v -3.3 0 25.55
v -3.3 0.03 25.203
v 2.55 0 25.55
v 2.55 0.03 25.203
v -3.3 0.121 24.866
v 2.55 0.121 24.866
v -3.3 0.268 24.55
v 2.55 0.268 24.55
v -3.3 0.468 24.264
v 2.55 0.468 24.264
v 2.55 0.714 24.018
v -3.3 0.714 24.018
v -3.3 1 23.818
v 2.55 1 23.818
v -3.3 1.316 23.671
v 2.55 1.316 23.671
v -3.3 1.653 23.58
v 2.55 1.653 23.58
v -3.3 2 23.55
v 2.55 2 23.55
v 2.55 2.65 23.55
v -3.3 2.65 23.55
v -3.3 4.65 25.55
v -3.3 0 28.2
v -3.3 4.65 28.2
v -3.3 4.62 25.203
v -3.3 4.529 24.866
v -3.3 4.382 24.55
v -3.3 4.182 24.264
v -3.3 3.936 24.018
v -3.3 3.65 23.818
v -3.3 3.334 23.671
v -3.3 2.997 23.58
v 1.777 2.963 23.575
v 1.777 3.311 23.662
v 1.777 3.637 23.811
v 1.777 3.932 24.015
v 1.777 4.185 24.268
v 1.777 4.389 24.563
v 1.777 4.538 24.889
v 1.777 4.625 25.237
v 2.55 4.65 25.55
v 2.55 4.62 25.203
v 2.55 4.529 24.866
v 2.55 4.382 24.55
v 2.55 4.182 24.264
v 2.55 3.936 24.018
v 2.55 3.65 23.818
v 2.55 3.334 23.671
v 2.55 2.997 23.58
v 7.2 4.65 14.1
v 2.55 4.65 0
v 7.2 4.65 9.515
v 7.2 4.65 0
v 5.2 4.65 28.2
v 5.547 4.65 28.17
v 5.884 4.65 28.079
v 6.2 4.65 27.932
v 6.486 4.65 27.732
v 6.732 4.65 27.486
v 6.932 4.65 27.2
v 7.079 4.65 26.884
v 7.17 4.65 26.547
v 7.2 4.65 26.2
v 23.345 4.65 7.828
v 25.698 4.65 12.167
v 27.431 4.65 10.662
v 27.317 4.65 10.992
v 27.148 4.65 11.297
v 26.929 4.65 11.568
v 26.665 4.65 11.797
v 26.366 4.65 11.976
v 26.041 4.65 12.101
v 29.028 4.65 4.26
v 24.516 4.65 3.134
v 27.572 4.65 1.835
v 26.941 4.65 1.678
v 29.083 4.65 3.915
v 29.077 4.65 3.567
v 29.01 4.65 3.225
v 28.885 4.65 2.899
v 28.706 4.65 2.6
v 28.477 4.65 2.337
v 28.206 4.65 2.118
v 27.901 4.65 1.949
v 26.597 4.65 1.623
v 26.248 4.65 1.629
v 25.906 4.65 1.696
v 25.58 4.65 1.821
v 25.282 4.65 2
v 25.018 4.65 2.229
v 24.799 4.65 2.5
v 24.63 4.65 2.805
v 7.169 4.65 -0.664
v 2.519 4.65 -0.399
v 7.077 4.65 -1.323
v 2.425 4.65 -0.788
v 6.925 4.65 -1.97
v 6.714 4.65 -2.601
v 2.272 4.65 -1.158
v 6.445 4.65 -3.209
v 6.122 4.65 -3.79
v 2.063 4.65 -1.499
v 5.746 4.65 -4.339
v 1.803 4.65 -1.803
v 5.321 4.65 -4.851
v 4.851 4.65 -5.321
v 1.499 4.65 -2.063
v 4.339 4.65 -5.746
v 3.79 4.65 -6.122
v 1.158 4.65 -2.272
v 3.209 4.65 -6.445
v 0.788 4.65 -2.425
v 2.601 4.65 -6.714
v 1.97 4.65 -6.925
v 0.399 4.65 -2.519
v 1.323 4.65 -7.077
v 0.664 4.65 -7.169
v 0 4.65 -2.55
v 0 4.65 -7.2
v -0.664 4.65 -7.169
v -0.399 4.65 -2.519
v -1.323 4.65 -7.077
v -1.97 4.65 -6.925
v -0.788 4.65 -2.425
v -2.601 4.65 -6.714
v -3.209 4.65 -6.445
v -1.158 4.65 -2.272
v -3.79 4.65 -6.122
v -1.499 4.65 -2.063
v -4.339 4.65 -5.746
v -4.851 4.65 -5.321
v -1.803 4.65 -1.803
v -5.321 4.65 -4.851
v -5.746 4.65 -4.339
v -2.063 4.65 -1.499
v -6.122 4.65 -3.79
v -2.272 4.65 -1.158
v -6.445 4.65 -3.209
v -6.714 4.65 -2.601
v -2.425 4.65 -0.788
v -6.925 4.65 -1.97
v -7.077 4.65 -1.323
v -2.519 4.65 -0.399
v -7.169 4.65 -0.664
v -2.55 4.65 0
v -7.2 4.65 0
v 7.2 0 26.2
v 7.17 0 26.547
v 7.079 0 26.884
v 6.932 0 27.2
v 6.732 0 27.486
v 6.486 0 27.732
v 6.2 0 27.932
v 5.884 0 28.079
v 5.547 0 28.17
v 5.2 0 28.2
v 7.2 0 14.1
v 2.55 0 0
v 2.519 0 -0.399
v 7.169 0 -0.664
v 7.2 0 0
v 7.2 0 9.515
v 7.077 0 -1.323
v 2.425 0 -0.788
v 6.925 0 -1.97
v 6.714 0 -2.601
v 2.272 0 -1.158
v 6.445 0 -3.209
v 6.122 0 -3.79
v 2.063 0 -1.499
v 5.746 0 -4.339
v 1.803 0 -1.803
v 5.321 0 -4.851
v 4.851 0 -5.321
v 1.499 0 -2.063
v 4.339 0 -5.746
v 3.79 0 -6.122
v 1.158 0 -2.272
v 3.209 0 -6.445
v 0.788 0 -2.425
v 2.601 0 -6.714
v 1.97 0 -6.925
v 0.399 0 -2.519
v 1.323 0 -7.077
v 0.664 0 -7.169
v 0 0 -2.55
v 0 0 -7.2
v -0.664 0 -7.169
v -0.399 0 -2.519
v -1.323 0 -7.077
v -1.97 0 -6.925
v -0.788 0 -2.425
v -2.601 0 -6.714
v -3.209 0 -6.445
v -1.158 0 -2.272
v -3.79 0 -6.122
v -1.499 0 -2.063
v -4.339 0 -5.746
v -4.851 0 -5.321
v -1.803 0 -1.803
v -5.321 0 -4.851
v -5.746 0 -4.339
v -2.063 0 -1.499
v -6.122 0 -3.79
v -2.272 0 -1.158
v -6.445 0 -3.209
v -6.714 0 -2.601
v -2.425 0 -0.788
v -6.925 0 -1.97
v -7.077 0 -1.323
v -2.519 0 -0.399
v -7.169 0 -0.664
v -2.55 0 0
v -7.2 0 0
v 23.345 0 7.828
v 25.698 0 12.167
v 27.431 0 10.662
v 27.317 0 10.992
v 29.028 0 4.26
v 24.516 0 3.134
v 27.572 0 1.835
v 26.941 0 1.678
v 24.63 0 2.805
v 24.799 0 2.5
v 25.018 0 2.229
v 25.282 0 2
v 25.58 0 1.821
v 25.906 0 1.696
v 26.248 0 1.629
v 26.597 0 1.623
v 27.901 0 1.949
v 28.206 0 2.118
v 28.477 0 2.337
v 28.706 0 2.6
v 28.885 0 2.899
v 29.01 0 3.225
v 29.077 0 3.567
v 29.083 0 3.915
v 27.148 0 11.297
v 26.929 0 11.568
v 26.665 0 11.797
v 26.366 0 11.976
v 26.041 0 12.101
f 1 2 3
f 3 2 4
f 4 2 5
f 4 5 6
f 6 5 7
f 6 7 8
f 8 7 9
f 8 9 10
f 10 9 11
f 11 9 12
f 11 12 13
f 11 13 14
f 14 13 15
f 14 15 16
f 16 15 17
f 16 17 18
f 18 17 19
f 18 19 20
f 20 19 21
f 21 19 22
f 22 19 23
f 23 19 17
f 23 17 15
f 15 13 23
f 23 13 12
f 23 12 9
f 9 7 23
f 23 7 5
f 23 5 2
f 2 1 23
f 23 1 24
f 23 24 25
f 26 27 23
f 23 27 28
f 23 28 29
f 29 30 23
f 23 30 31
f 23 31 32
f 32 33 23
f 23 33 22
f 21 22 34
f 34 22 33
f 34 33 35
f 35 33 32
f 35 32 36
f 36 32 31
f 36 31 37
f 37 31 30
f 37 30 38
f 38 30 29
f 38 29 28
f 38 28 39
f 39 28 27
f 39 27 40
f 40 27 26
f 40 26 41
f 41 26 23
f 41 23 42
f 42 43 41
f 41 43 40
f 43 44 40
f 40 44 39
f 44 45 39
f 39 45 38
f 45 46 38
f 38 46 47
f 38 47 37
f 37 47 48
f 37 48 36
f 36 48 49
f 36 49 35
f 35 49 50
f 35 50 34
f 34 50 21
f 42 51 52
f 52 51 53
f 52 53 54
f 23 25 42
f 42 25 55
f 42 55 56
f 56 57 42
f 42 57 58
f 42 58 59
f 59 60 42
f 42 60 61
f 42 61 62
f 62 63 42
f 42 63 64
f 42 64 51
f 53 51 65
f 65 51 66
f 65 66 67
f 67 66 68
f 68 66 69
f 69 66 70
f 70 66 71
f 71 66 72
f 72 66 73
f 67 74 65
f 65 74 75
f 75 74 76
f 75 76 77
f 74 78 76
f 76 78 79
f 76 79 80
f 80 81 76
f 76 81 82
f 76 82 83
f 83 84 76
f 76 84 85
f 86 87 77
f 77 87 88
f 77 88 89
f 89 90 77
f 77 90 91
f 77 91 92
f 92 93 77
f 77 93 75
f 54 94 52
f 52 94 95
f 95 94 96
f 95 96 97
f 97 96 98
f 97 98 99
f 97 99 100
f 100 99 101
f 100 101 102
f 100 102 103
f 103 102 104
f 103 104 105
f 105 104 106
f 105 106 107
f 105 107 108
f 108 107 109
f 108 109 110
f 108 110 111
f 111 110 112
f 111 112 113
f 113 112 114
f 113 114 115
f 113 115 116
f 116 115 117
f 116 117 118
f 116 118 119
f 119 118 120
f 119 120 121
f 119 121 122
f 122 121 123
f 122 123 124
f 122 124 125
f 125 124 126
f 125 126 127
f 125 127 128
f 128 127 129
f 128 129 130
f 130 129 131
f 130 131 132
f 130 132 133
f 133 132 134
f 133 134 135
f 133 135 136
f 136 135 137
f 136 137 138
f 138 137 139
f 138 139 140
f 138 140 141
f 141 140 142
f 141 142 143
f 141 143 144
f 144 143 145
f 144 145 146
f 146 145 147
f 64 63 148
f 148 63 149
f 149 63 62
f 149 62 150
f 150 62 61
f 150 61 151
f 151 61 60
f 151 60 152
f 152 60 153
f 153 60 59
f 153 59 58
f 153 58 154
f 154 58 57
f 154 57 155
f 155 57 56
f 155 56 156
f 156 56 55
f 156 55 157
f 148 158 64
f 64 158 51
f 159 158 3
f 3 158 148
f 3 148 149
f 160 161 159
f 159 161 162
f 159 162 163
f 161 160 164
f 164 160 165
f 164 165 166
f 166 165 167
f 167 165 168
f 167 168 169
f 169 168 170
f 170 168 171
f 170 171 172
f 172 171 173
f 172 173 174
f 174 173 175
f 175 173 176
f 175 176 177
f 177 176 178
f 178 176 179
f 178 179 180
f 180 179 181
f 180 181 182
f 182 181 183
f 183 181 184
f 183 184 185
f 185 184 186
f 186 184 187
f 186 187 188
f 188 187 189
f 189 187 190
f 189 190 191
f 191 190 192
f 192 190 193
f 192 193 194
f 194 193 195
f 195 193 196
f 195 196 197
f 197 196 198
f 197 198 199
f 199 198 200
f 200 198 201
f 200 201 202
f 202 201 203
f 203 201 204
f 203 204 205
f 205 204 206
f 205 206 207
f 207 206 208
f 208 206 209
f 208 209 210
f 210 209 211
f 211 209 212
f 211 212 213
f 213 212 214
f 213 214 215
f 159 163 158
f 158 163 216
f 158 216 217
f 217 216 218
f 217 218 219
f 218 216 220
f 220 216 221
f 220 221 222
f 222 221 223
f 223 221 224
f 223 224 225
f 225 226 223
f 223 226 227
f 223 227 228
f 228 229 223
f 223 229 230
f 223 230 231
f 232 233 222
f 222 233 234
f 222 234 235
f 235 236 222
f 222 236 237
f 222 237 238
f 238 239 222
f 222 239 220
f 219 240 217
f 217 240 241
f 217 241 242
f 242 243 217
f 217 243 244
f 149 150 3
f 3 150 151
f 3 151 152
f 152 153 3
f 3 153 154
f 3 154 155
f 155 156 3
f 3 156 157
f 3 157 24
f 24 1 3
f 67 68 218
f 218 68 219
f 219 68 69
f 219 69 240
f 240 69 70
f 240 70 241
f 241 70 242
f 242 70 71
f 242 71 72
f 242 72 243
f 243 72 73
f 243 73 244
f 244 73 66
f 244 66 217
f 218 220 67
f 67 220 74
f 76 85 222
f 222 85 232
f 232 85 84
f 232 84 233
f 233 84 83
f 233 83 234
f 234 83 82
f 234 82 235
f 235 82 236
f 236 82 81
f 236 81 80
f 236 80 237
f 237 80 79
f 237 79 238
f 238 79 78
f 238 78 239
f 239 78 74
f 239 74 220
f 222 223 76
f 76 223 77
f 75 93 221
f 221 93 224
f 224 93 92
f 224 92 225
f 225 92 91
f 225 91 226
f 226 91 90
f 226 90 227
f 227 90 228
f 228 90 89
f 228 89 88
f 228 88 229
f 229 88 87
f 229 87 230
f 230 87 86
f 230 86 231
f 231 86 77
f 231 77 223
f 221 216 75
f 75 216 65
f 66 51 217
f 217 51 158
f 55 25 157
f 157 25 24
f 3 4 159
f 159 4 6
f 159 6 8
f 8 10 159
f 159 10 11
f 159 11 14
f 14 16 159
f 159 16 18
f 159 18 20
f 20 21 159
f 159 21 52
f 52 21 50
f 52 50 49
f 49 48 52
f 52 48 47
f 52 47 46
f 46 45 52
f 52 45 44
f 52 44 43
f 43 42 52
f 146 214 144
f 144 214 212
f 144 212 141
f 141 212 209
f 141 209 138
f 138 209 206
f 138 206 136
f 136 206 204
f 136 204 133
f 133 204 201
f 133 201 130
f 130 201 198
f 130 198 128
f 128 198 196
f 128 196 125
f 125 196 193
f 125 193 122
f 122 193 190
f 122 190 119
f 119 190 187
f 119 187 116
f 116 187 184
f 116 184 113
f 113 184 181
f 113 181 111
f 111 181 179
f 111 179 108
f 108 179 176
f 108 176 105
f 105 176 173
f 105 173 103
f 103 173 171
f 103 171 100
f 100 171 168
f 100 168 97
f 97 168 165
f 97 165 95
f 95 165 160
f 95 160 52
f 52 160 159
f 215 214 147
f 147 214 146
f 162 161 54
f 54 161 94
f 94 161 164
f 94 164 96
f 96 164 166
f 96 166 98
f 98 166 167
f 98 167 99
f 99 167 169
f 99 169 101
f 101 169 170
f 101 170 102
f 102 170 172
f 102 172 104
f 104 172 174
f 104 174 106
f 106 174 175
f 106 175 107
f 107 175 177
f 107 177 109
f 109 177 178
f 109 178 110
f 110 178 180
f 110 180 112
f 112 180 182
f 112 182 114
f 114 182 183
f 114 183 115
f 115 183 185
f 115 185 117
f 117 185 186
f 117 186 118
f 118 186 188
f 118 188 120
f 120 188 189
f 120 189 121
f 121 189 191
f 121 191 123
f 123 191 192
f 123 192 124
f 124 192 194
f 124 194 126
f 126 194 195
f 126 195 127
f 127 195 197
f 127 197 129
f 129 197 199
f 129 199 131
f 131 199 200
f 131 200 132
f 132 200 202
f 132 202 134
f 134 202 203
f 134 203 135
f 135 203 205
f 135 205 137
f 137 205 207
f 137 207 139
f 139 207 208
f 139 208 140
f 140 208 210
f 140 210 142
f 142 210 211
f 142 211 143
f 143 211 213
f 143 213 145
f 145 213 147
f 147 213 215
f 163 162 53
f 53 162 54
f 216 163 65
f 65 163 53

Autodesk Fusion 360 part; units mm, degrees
sketch "Sketch1" plane through (0, 0, 0) normal (0, 1, 0) x (1, 0, 0)
  circle A0 centre (0, 0) radius 7.2
  circle A1 centre (0, 0) radius 2.55
  line L0 (7.2, 0) -> (2.55, 0)
  line L1 (2.55, 0) -> (2.55, -28.2)
  line L2 (2.55, -28.2) -> (7.2, -28.2)
  line L3 (7.2, -28.2) -> (7.2, 0)
  line L4 (7.2, -28.2) -> (-3.3, -28.2)
  line L5 (-3.3, -28.2) -> (-3.3, -23.55)
  line L6 (-3.3, -23.55) -> (7.2, -23.55)
  line L7 (7.2, -23.55) -> (7.2, -28.2)
  line L8 (2.55, 0) -> (-7.2, 0)
  line L9 (7.2, -4.2775) -> (7.2, -1.15)
  line L10 (7.2, -14.1) -> (27.0917, -12.0219)
  line L11 (27.0917, -12.0219) -> (26.6179, -7.4866)
  line L12 (26.6179, -7.4866) -> (6.7262, -9.5647)
  line L13 (6.7262, -9.5647) -> (7.2, -14.1)
  line L14 (27.0917, -12.0219) -> (22.58, -10.8963)
  line L15 (22.58, -10.8963) -> (25.0006, -1.1937)
  line L16 (25.0006, -1.1937) -> (29.5123, -2.3192)
  line L17 (29.5123, -2.3192) -> (27.0917, -12.0219)
  dimension "d1" = 14.4
  dimension "d2" = 5.1
  dimension "d3" = 4.65
  dimension "d4" = 28.2
  dimension "d5" = 10.5
  dimension "d6" = 4.65
  dimension "d16" = 20
  dimension "d17" = 4.56
  dimension "d18" = 4.65
  dimension "d19" = 10
extrude "Extrude1" add sketch "Sketch1" along normal blind 4.65 contours A0 A1 L0 L8 | A0 L1 L3 L6 L9 L12 L13 | A0 L0 L1 | L1 L2 L3 L4 L6 L7 | L1 L4 L5 L6 | L3 L10 L12 L14 L15 | L3 L12 L13 | L11 L12 L15 L16 L17 | L11 L12 L14 L15
fillet "Fillet1" radius 2 3 edges at (25.0006, 2.325, 1.1937) (29.5123, 2.325, 2.3192) (27.0917, 2.325, 12.0219)
fillet "Fillet2" radius 2 1 edges at (7.2, 2.325, 28.2)
fillet "Fillet3" radius 2 2 edges at (-0.375, 4.65, 23.55) (-0.375, 0, 23.55)
